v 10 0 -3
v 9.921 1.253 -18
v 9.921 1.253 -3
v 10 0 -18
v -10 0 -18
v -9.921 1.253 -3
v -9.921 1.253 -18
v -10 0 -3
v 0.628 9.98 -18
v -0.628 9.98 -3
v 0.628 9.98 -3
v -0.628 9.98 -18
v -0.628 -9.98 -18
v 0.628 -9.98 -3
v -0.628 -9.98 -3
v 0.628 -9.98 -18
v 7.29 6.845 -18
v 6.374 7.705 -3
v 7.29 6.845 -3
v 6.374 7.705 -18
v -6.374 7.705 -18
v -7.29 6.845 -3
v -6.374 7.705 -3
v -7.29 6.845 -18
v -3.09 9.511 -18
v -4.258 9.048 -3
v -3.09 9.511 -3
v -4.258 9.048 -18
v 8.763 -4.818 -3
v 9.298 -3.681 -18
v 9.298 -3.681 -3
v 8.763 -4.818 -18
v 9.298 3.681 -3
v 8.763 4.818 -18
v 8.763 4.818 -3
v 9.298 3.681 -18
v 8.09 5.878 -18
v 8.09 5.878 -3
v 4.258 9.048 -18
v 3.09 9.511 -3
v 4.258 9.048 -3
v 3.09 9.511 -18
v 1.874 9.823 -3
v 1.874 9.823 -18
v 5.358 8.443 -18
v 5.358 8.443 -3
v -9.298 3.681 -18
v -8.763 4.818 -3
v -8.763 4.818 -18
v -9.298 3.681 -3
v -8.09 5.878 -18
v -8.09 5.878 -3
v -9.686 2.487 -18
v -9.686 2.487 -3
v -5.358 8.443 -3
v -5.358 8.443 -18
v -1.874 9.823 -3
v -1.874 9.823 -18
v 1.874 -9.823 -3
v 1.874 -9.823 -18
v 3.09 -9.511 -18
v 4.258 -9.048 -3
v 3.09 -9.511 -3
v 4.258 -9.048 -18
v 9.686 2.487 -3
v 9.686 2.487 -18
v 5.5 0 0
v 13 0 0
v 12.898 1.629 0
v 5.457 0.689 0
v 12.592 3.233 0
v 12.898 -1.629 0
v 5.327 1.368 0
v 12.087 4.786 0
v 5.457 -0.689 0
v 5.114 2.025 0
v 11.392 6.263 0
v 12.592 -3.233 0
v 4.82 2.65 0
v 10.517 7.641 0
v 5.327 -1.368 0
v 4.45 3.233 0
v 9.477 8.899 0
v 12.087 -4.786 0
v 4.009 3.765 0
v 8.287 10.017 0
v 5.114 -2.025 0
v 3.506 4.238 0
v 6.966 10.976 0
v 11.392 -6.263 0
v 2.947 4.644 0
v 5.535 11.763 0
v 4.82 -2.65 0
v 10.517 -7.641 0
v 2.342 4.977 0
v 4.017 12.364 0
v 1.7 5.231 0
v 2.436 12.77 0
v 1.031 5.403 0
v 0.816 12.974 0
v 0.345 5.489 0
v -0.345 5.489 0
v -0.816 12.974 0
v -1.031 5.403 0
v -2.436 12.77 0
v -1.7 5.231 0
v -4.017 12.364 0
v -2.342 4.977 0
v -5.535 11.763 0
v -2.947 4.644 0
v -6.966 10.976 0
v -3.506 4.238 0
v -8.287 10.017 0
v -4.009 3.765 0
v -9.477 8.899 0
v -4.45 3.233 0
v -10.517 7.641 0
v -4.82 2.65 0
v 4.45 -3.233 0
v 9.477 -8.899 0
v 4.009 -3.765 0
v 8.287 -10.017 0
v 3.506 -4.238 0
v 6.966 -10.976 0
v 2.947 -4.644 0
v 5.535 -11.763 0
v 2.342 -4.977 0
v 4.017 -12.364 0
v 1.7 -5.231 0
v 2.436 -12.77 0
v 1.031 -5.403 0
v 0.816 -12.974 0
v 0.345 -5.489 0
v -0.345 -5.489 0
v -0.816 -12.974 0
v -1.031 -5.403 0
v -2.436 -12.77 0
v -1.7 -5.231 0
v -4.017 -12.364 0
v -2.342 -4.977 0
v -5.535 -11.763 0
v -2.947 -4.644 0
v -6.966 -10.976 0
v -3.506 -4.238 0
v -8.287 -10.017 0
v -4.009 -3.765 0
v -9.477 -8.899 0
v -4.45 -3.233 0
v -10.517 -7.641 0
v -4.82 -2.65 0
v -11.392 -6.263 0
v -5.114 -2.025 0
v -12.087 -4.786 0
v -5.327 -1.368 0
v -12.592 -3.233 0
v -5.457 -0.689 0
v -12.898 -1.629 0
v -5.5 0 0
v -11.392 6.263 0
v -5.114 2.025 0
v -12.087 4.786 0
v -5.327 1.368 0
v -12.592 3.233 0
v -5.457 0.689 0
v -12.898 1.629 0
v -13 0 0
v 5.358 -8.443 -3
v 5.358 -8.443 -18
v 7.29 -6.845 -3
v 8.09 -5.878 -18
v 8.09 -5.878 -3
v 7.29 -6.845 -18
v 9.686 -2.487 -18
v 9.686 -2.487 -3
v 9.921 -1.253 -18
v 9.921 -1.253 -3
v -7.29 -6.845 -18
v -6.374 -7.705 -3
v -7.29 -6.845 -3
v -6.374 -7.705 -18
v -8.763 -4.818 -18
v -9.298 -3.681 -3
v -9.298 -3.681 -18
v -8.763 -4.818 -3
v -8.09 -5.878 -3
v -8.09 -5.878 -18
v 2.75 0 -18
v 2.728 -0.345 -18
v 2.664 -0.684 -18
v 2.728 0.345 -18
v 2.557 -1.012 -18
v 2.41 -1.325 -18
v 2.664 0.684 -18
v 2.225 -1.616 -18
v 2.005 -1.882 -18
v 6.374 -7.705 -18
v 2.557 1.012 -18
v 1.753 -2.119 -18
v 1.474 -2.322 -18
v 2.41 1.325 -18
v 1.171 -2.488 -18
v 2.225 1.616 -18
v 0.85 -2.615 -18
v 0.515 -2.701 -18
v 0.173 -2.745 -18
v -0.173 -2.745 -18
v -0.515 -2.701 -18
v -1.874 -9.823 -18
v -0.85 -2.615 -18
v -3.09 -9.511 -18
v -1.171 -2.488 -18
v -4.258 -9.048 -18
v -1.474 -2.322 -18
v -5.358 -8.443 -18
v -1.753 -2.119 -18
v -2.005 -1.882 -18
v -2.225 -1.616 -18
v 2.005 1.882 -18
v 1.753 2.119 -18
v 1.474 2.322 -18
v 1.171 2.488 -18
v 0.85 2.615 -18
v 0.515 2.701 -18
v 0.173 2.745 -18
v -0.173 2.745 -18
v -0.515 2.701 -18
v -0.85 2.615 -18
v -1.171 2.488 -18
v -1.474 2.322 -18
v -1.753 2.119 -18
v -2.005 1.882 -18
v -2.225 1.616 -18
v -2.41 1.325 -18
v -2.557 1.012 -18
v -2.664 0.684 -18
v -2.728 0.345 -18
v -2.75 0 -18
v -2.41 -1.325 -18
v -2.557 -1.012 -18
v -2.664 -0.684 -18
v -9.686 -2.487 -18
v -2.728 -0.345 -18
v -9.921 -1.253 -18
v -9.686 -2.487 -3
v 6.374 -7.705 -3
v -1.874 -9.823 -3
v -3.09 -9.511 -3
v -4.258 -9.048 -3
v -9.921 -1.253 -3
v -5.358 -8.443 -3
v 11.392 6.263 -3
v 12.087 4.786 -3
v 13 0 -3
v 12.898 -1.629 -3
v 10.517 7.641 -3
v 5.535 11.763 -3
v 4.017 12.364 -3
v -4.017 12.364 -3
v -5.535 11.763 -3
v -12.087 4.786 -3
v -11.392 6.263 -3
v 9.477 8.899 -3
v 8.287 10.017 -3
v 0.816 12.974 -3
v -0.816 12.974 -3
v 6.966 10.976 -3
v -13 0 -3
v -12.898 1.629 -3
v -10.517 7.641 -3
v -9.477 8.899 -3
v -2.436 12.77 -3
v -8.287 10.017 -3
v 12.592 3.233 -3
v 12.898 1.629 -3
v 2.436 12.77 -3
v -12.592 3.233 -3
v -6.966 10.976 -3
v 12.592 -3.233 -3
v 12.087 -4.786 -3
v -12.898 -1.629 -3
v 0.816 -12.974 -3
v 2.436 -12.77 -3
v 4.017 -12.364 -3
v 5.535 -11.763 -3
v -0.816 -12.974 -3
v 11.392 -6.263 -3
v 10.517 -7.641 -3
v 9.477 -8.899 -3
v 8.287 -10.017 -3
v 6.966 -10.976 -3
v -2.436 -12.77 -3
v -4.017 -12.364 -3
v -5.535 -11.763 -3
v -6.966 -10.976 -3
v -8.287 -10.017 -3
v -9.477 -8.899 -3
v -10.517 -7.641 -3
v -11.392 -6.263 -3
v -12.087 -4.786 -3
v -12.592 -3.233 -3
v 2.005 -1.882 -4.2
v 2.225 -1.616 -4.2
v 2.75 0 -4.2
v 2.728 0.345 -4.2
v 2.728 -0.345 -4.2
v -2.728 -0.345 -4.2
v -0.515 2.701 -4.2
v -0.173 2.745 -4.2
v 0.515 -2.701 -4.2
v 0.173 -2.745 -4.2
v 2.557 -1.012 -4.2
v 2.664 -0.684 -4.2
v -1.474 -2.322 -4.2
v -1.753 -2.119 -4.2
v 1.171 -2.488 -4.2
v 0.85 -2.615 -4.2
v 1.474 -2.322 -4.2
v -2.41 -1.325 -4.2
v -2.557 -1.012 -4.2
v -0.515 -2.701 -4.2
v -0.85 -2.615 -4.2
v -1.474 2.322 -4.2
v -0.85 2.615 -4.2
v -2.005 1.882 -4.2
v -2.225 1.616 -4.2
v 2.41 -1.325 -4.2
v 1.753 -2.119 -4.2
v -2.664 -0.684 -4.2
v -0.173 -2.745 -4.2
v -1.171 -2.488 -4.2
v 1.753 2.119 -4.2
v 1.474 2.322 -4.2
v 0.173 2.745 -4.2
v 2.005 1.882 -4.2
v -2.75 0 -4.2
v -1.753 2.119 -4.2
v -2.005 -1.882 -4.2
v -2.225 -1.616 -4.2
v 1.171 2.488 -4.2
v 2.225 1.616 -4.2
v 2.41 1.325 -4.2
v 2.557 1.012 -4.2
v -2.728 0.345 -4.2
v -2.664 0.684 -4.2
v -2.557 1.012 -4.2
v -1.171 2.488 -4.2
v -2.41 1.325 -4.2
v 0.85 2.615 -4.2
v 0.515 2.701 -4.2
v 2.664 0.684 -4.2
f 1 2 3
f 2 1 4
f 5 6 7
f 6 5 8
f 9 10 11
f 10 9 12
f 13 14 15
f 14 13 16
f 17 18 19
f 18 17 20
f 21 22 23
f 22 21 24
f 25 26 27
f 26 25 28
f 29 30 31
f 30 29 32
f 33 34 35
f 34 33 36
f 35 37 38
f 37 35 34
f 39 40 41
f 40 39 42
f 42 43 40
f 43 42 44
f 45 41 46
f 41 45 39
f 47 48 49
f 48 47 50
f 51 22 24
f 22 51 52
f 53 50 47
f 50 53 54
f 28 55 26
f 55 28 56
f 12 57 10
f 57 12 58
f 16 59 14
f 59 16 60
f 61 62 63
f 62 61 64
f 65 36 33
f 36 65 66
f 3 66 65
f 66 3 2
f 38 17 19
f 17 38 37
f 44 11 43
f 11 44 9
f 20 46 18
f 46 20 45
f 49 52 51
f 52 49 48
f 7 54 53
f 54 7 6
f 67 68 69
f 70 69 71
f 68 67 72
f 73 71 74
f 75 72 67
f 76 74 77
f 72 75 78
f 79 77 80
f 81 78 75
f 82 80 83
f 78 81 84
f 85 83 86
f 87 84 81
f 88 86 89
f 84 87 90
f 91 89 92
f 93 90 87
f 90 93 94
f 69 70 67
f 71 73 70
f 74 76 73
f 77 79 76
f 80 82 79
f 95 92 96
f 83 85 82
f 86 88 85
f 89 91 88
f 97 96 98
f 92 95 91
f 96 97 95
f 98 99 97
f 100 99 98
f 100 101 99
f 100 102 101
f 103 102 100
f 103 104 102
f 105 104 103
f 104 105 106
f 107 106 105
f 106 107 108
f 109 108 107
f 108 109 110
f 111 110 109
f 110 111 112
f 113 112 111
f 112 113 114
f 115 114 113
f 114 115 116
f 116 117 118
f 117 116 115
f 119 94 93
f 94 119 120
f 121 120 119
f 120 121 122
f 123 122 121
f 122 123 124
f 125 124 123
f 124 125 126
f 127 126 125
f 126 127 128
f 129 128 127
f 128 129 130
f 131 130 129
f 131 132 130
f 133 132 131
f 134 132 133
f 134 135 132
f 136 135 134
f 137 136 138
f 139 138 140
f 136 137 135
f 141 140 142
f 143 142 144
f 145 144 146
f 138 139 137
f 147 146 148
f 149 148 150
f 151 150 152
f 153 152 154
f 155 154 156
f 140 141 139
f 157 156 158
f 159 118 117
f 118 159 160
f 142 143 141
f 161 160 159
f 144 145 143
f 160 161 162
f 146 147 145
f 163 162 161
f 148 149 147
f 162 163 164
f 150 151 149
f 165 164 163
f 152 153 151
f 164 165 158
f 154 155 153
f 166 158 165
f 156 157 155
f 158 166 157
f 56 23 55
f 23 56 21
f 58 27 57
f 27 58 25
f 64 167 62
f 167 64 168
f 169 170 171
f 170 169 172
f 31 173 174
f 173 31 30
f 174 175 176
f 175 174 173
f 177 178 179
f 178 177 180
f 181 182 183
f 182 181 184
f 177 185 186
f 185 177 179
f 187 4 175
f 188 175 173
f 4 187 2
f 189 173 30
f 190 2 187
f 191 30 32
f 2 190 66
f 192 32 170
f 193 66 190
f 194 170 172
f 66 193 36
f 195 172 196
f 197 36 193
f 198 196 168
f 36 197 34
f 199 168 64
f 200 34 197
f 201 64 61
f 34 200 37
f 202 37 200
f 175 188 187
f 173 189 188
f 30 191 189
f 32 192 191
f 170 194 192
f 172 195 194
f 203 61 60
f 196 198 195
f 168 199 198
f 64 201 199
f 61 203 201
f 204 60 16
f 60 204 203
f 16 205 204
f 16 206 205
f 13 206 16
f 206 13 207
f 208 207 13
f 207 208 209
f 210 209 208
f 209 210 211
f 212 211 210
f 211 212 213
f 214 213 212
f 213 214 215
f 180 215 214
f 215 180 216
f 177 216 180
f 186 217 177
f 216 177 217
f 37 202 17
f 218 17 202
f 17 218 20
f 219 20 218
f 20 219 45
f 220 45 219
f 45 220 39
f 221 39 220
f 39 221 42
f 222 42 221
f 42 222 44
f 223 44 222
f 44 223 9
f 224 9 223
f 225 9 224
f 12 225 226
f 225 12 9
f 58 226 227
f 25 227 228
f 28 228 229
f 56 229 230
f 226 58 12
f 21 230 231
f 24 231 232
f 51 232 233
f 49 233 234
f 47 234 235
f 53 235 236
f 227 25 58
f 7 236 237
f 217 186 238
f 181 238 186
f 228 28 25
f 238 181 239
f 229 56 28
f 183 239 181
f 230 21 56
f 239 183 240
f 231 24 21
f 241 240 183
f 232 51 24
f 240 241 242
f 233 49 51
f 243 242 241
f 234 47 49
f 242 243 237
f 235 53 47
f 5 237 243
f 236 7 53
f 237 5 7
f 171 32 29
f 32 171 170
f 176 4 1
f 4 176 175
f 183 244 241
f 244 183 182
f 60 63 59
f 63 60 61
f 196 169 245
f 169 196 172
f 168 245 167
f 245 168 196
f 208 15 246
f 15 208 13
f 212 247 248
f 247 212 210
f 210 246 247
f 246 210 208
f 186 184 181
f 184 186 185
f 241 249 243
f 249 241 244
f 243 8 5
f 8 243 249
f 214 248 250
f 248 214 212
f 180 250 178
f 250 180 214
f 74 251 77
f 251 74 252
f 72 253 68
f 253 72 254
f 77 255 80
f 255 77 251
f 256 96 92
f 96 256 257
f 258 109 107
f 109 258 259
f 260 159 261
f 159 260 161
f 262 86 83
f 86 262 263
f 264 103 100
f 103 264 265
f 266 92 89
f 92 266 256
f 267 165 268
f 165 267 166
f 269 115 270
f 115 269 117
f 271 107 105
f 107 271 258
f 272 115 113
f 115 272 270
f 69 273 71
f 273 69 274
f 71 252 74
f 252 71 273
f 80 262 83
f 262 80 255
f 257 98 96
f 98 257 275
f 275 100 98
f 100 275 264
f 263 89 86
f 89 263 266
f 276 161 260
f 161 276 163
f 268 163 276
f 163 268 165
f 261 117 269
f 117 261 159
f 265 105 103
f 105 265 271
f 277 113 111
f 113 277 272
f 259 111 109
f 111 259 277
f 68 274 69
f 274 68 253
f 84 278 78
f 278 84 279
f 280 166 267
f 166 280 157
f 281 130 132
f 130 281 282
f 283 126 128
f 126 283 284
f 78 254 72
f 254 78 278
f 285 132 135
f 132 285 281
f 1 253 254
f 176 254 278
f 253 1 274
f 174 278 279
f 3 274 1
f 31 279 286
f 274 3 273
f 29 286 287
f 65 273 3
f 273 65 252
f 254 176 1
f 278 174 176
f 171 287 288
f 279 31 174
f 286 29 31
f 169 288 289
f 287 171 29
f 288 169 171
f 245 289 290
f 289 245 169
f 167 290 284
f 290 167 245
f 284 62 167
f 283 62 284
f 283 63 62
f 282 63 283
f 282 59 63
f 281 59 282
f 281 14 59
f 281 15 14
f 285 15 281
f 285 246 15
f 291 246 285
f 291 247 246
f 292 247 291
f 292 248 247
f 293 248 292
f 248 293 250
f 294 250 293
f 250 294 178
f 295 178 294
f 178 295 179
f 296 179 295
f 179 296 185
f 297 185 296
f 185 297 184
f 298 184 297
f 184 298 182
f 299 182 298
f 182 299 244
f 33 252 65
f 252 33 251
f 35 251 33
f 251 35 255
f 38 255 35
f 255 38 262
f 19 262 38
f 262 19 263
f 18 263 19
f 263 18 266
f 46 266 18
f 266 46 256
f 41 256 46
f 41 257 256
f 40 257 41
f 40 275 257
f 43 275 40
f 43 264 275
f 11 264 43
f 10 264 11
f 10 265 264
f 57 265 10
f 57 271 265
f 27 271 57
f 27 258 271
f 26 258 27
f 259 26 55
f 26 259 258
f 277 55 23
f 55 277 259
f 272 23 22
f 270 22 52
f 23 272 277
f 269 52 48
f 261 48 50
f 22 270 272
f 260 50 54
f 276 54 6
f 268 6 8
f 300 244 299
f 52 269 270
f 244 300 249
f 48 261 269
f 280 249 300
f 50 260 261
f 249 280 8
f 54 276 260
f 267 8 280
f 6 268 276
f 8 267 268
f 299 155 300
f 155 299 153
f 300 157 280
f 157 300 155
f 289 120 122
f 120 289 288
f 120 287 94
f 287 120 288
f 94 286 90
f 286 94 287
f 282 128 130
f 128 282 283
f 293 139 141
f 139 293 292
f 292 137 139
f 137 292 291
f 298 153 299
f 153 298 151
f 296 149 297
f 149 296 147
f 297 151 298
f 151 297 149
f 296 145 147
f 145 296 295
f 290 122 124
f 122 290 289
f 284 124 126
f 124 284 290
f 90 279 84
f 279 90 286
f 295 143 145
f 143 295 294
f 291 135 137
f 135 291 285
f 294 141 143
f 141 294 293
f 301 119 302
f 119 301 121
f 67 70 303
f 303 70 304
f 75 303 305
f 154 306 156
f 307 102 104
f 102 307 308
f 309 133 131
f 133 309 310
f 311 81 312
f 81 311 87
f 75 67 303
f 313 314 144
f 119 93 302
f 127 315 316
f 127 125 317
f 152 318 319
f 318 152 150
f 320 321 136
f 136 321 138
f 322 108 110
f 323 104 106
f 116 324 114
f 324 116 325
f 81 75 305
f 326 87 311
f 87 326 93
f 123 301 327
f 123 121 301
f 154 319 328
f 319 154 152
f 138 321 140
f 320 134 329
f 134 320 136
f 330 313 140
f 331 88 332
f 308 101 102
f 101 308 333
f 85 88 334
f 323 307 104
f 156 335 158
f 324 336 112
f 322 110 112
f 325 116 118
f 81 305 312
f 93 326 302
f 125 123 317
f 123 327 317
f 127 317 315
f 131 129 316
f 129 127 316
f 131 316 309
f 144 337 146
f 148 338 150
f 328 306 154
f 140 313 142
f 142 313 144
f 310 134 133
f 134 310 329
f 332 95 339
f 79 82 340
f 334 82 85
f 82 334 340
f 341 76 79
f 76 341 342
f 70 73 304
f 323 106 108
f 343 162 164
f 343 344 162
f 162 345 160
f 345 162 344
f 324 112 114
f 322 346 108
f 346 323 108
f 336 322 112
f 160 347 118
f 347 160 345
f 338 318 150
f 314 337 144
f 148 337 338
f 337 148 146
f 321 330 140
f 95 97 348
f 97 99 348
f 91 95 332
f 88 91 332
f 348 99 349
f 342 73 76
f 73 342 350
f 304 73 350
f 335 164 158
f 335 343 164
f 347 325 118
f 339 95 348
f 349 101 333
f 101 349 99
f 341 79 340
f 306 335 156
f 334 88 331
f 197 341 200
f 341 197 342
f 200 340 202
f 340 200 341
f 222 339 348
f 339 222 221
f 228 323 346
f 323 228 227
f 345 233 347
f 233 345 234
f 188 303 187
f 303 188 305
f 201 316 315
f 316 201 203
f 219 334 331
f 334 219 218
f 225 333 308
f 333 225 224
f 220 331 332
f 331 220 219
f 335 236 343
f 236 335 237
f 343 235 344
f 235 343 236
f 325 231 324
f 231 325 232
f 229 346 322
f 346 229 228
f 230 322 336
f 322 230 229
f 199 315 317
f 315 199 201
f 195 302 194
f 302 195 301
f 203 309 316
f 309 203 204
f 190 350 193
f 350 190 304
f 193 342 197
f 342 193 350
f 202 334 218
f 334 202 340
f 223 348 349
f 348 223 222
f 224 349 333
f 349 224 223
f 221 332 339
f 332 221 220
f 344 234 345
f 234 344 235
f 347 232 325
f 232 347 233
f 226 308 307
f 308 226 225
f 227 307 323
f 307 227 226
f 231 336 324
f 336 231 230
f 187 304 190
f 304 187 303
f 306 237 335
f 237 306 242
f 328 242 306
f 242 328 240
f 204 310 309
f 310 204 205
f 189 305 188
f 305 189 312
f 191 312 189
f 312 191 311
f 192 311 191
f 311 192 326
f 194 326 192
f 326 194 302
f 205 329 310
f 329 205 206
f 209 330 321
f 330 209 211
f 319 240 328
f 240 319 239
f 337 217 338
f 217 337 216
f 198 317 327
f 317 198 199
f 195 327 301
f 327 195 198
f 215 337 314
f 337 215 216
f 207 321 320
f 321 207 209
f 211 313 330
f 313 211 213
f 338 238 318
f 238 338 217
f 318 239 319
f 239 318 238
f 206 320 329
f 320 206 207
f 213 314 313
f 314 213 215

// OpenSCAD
$fn = 50;


difference() {
	union() {
		translate(v = [0, 0, -18.0000000000]) {
			cylinder(h = 18, r = 10.0000000000);
		}
		translate(v = [0, 0, -3.0000000000]) {
			cylinder(h = 3, r = 13.0000000000);
		}
	}
	union() {
		translate(v = [0, 0, 0]) {
			rotate(a = [0, 0, 0]) {
				difference() {
					union() {
						#translate(v = [0, 0, -18.0000000000]) {
							cylinder(h = 18, r = 2.2500000000);
						}
						#translate(v = [0, 0, -4.2000000000]) {
							cylinder(h = 4.2000000000, r = 10.0000000000, r1 = 2.7500000000, r2 = 5.5000000000);
						}
						#translate(v = [0, 0, -18.0000000000]) {
							cylinder(h = 18, r = 2.7500000000);
						}
						#translate(v = [0, 0, -18.0000000000]) {
							cylinder(h = 18, r = 2.2500000000);
						}
					}
					union();
				}
			}
		}
	}
}
